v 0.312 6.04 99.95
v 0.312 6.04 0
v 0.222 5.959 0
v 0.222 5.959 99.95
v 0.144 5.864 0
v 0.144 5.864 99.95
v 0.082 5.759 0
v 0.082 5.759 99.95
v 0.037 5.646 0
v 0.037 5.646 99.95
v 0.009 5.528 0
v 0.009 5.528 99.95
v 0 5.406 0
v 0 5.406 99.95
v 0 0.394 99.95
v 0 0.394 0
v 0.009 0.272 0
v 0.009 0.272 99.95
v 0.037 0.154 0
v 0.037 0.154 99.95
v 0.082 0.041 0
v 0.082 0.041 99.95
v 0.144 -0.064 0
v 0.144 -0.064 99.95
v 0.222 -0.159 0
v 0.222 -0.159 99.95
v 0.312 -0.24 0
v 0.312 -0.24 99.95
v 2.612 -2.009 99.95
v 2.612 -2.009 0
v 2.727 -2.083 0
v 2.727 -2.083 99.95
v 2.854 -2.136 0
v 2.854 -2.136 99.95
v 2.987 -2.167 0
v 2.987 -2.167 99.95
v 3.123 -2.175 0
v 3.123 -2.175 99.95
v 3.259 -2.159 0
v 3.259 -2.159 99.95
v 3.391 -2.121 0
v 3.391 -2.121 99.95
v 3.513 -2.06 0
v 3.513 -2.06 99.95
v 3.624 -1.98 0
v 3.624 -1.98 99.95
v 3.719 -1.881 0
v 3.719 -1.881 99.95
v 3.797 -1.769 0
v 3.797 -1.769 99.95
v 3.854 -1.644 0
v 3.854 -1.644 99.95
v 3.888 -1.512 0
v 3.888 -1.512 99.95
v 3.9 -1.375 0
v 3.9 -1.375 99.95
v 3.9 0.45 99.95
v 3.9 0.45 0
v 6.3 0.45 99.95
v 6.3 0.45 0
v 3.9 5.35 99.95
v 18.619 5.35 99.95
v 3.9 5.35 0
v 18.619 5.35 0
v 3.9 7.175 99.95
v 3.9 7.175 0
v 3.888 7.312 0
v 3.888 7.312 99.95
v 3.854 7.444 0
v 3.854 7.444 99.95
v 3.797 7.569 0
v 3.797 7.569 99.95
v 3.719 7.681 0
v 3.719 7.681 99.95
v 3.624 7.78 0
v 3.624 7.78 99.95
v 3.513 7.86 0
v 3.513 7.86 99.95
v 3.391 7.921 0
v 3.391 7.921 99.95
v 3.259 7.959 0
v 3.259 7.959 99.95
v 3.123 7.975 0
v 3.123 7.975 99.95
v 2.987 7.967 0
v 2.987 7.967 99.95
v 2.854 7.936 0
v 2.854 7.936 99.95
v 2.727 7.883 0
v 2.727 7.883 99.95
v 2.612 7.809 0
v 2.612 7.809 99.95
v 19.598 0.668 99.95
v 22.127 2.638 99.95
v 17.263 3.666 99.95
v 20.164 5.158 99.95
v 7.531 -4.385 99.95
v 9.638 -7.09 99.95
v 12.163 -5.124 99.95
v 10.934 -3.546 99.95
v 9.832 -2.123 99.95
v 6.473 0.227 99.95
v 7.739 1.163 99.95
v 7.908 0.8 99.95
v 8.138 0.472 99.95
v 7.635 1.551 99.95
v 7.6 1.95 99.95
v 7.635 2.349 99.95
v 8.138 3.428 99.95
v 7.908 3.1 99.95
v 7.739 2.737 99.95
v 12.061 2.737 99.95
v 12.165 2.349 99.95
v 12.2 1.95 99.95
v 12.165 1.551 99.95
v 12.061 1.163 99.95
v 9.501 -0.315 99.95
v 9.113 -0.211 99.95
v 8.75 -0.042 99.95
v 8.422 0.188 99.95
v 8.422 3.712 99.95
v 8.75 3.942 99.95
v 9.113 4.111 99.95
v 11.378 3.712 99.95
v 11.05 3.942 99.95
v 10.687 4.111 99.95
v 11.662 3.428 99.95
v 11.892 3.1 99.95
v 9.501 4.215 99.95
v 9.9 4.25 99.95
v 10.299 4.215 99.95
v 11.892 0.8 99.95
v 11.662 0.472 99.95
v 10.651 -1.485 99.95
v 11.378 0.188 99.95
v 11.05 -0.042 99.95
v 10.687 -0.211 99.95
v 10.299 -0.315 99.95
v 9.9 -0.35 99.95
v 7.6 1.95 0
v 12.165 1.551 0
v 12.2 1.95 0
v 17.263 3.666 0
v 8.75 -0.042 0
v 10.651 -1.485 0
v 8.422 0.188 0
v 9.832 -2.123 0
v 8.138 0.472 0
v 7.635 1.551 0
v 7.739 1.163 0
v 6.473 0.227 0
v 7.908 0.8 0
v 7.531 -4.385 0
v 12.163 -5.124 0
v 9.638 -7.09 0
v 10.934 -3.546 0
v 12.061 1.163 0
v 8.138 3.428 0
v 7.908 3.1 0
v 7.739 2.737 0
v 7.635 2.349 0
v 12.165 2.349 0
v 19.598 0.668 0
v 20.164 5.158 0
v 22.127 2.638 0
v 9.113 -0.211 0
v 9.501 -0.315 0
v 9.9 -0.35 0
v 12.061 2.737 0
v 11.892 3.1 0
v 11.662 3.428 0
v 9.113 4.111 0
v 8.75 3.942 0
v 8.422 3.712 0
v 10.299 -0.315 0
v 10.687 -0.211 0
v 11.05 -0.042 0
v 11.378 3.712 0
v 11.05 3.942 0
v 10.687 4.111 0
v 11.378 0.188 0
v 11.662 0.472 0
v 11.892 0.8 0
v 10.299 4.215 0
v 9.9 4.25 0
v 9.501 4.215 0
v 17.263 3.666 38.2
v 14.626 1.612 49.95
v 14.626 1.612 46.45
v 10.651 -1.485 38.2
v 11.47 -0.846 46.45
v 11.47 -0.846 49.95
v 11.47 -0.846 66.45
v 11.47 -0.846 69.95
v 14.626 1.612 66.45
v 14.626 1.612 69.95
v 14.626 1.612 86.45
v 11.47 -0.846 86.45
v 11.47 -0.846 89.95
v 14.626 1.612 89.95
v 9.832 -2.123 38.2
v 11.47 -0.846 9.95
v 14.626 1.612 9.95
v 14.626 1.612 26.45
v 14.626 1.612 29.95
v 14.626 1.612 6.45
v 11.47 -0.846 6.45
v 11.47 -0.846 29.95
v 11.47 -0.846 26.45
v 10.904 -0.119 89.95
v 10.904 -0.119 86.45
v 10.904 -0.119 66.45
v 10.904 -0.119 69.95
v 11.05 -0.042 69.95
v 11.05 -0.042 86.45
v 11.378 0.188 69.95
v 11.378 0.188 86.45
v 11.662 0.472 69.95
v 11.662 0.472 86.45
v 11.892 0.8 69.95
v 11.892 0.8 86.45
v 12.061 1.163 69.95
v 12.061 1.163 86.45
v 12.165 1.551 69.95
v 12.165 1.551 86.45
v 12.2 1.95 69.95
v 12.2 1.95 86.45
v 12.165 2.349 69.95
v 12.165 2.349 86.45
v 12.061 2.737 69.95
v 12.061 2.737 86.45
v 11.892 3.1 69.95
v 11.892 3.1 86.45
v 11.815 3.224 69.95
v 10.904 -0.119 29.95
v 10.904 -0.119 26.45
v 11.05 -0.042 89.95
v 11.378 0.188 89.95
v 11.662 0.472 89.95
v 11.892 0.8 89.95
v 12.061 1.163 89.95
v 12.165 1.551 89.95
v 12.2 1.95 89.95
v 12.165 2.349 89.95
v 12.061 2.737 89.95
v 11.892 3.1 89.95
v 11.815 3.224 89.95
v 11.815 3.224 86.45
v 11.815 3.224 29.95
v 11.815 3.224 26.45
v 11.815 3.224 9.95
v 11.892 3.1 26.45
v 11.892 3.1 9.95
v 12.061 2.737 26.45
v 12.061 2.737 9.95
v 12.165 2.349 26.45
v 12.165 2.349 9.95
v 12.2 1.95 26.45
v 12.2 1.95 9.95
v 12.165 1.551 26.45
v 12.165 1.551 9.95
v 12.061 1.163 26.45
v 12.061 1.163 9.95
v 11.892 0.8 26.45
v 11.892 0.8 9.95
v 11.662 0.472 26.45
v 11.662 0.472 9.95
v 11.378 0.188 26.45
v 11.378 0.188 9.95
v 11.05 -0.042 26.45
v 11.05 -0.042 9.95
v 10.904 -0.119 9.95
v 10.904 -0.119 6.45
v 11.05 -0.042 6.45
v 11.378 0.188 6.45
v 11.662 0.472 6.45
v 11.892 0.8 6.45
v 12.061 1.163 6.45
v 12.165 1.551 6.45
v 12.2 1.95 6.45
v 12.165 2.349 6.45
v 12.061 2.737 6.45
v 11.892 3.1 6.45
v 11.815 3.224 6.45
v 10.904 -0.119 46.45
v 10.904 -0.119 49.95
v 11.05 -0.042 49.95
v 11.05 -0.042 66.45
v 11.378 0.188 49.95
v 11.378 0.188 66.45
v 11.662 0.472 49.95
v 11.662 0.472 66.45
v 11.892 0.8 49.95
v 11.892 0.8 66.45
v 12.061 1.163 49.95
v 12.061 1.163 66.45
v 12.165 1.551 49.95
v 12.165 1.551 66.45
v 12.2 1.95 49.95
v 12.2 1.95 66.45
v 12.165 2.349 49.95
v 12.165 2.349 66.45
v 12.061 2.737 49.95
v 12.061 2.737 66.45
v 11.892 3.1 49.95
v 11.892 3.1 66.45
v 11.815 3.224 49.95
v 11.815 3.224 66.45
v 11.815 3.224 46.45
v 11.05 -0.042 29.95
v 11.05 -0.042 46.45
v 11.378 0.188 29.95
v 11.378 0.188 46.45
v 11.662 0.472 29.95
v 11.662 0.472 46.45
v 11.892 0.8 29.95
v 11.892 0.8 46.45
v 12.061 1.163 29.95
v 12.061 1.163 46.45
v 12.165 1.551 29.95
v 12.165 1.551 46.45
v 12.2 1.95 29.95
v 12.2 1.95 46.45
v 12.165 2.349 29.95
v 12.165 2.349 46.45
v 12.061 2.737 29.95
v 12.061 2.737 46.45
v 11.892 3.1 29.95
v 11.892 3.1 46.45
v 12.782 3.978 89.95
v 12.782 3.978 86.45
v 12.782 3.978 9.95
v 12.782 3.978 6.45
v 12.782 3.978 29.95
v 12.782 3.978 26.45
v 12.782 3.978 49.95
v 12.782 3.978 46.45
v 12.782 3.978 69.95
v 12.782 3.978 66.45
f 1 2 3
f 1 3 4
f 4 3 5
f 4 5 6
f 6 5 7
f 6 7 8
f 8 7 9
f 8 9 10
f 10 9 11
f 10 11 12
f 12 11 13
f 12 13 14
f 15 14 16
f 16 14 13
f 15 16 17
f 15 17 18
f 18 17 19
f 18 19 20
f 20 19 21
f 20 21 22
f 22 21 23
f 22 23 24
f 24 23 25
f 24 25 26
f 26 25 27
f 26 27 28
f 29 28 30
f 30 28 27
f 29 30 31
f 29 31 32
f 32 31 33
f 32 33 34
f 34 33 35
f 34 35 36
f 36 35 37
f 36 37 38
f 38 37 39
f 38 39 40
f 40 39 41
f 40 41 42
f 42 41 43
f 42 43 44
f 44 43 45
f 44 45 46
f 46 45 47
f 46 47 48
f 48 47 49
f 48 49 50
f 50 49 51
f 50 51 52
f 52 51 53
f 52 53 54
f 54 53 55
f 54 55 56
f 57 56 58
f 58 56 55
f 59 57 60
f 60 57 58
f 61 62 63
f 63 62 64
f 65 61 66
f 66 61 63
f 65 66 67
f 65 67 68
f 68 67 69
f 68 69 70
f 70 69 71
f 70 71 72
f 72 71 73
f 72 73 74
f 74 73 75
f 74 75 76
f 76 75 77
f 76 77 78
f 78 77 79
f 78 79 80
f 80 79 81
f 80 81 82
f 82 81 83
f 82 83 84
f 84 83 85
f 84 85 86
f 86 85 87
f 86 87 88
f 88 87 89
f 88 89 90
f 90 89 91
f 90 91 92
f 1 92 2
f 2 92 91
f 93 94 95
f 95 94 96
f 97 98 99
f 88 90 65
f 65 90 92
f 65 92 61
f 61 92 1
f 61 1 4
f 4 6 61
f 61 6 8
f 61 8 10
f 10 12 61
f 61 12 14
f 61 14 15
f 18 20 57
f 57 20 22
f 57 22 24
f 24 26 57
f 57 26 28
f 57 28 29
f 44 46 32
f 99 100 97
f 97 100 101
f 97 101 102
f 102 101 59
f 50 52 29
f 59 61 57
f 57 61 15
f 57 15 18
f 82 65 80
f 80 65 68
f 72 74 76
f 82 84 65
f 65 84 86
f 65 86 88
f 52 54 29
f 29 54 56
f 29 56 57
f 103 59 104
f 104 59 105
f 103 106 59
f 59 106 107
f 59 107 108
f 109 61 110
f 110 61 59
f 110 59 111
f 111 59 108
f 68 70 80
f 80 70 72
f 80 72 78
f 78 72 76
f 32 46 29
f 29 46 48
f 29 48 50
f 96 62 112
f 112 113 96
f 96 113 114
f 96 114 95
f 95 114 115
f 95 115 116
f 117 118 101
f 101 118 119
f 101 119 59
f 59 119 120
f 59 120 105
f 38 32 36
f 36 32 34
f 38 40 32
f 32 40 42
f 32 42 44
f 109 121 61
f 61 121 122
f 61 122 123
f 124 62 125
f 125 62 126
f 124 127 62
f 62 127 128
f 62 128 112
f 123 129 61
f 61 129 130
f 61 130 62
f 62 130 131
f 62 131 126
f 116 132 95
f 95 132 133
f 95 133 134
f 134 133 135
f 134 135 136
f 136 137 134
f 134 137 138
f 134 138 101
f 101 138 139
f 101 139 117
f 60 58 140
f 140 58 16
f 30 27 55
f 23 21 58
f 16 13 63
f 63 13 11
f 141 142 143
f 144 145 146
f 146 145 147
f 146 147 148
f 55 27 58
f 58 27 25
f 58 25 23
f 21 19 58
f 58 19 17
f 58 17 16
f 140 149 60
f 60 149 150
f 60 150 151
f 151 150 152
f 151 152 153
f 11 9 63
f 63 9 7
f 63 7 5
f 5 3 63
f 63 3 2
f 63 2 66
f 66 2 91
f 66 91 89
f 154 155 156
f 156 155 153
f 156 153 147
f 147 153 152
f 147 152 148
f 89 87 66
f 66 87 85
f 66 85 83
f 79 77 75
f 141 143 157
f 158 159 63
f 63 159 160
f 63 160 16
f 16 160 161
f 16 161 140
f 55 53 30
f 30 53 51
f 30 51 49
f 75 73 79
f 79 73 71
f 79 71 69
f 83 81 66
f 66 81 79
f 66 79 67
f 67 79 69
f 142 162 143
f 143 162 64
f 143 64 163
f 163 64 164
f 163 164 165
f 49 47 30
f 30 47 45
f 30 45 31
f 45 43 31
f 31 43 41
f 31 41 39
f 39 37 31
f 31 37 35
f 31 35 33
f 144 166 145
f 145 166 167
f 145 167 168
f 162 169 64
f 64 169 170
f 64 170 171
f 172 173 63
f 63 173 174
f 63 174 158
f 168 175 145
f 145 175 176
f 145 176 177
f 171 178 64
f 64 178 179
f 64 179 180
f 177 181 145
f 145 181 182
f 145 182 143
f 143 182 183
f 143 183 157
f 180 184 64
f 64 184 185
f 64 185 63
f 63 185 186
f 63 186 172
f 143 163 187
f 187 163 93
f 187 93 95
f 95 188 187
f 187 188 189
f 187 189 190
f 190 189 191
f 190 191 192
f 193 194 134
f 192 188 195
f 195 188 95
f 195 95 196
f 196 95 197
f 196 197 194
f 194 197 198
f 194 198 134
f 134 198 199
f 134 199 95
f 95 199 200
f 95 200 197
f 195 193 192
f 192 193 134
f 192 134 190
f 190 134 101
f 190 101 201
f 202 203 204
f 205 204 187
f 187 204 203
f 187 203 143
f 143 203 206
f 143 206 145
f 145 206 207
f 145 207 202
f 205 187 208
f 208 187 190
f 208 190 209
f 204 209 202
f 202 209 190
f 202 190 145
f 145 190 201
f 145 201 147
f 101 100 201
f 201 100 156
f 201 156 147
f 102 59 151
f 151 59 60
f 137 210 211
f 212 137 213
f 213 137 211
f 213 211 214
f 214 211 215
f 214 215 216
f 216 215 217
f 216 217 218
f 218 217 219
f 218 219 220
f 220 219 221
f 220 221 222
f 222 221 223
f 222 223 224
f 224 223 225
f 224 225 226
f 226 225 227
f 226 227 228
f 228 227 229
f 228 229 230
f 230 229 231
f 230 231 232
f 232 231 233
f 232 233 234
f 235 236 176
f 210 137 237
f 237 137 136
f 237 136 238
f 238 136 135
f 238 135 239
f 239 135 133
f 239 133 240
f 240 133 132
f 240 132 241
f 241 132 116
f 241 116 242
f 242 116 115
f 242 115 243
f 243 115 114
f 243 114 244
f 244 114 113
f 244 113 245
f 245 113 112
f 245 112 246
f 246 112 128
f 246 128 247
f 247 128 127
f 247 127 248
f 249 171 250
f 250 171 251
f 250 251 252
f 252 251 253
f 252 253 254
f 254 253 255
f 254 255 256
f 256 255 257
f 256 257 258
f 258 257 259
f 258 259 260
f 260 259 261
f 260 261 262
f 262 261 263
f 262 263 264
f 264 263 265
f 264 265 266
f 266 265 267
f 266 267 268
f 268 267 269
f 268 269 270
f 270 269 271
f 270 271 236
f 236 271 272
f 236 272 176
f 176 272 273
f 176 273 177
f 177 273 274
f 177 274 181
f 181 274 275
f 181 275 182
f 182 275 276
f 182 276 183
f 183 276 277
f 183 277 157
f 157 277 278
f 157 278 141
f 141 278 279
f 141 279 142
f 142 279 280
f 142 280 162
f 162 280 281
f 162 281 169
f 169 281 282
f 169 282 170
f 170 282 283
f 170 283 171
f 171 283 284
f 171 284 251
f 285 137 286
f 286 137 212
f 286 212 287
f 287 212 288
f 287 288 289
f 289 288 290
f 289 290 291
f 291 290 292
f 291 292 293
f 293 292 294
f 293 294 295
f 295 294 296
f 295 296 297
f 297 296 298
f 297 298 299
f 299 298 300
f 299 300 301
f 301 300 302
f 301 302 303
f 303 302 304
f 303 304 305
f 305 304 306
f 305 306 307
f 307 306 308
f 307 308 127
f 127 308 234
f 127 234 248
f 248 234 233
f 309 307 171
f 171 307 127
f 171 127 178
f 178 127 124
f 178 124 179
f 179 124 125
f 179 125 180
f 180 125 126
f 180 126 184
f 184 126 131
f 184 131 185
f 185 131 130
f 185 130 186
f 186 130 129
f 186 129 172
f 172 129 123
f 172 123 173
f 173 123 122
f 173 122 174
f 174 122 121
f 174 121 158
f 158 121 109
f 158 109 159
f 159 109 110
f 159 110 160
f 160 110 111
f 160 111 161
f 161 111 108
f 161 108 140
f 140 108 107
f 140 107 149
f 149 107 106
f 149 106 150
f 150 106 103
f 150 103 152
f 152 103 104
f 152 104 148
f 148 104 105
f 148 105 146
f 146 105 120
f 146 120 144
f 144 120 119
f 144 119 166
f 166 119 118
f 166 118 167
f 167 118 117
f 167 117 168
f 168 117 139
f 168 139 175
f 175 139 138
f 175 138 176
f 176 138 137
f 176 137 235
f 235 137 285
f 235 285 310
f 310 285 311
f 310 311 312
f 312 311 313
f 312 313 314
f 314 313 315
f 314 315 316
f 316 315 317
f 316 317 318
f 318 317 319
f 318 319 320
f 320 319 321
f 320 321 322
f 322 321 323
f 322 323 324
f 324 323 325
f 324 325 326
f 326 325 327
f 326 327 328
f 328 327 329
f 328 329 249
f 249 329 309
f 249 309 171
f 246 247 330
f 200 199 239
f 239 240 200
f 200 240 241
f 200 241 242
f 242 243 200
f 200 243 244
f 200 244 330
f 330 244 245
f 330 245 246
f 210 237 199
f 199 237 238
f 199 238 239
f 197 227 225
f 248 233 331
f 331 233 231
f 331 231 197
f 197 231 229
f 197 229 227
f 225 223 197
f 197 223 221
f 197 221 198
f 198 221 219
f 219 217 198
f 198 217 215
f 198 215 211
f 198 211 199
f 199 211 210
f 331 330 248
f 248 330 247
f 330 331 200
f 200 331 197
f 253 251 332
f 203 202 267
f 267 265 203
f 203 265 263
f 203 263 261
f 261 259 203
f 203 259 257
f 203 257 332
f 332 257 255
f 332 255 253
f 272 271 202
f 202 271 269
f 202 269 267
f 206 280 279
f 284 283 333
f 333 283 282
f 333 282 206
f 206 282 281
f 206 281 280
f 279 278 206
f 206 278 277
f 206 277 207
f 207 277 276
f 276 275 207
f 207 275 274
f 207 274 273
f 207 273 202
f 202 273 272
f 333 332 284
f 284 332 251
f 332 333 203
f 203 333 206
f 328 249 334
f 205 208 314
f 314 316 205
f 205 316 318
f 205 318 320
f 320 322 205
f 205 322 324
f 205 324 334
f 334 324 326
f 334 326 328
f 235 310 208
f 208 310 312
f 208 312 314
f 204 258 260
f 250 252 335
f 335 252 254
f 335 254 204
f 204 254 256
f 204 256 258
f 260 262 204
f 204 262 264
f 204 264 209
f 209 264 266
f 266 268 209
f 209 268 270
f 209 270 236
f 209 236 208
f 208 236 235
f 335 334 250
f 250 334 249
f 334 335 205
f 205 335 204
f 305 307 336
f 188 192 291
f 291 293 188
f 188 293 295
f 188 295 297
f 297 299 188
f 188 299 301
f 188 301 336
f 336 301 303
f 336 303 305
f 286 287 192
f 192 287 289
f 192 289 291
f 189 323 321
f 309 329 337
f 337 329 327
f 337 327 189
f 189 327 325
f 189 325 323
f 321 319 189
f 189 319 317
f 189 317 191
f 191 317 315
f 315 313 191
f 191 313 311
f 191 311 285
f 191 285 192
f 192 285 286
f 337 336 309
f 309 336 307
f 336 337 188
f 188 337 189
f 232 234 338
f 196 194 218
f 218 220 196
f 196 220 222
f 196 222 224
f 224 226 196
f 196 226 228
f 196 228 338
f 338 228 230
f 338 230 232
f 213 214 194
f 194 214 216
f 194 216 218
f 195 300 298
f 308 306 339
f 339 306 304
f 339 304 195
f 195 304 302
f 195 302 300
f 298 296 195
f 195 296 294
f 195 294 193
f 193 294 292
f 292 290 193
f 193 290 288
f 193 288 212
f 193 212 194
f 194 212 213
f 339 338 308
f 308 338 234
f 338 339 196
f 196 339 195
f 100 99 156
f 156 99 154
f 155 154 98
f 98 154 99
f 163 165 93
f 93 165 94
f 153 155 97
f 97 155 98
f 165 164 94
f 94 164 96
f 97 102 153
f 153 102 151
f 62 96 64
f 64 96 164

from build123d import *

# Parameters (mm, degrees)
BOSS_EXTRUDE1_DEPTH = 99.95
BOSS_EXTRUDE2_DEPTH = 99.95
SKETCH3_R           = 2.3
CUT_EXTRUDE1_DEPTH  = 203
SKETCH4_W           = 3.5
SKETCH4_H           = 4
CUT_EXTRUDE2_DEPTH  = 3
LPATTERN1_COUNT     = 10
LPATTERN1_PITCH     = 20
THICKEN1_T1         = 2
THICKEN2_T1         = 2
BOSS_EXTRUDE3_DEPTH = 99.95
CHAMFER1_SIZE       = 4.717915225
CHAMFER1_SIZE_2     = 2.2
CHAMFER2_SIZE       = 2.2


with BuildPart() as part:
    # Sketch1 → Boss-Extrude1 (new body)
    with BuildSketch(Plane.XY):
        with BuildLine():
            Line((0, 0.393921198), (0, 5.406078802))
            ThreePointArc((0, 5.406078802), (0.08229014, 5.759480212), (0.312231391, 6.040177993))
            Line((0.312231391, 6.040177993), (2.612231391, 7.809408763))
            ThreePointArc((2.612231391, 7.809408763), (3.45340141, 7.893019432), (3.9, 7.175309571))
            Line((3.9, 7.175309571), (3.9, 5.35))
            Line((3.9, 5.35), (6.3, 5.35))
            Line((6.3, 5.35), (6.3, 0.45))
            Line((6.3, 0.45), (3.9, 0.45))
            Line((3.9, 0.45), (3.9, -1.375309571))
            ThreePointArc((3.9, -1.375309571), (3.45340141, -2.093019432), (2.612231391, -2.009408763))
            Line((2.612231391, -2.009408763), (0.312231391, -0.240177993))
            ThreePointArc((0.312231391, -0.240177993), (0.08229014, 0.040519788), (0, 0.393921198))
        make_face()
    extrude(amount=BOSS_EXTRUDE1_DEPTH)

    # Sketch2 → Boss-Extrude2 (add)
    with BuildSketch(Plane.XY.offset(99.95)):
        Polygon((17.472453889, 5.35), (6.3, 5.35), (6.3, 0.45), (9.987087866, -4.283432483), (10.933774362, -3.54601491), (9.831668963, -2.122862181), (17.26318939, 3.66589025), (18.369311325, 2.245866185), (19.315997822, 2.983283759), align=None)
    extrude(amount=-BOSS_EXTRUDE2_DEPTH)

    # Sketch3 → Cut-Extrude1 (cut)
    with BuildSketch(Plane.XY.offset(99.95)):
        with Locations((9.9, 1.95)):
            Circle(SKETCH3_R)
    extrude(amount=-CUT_EXTRUDE1_DEPTH, mode=Mode.SUBTRACT)

    # Sketch4 → Cut-Extrude2 (cut)
    with BuildSketch(Plane(origin=(6.0943119, -5.034061174, 0), x_dir=(0, 0, -1), z_dir=(0.6145146443247225, -0.7889054137920846, 0))):
        with Locations((-88.2, 8.814603366)):
            Rectangle(SKETCH4_W, SKETCH4_H)
    cut_extrude2 = extrude(amount=-CUT_EXTRUDE2_DEPTH, mode=Mode.SUBTRACT)

    # LPattern1: Cut-Extrude2 ×10
    with Locations(*[(0, 0, -i * LPATTERN1_PITCH) for i in range(1, LPATTERN1_COUNT)]):
        add(cut_extrude2, mode=Mode.SUBTRACT)

    # Surface-Offset1: a surface, a copy of 1 face of the part
    surface_offset1_1 = part.part.faces().sort_by_distance((10.460431114, -3.914723696, 49.975))[0]
    add(Solid.thicken(surface_offset1_1, THICKEN1_T1))

    # Surface-Offset2: a surface, a copy of 1 face of the part
    surface_offset2_2 = part.part.faces().sort_by_distance((18.842654573, 2.614574972, 49.975))[0]
    add(Solid.thicken(surface_offset2_2, THICKEN2_T1))

    # Sketch5 → Boss-Extrude3 (add)
    with BuildSketch(Plane.XY.offset(99.95)):
        Polygon((11.216117155, -5.86124331), (9.638306327, -7.090272599), (7.794762394, -4.723556358), (9.372573222, -3.494527069), align=None)
        Polygon((22.126854473, 2.637630884), (20.28331054, 5.004347125), (17.754796681, 3.034771599), (19.598340614, 0.668055358), align=None)
    extrude(amount=-BOSS_EXTRUDE3_DEPTH)

    # Chamfer1
    # the kernel refuses this chamfer: 4.717915225, 2.2 mm, written as the material it adds along each edge
    with BuildSketch(Plane(origin=(9.372573222, -3.494527069, 99.95), x_dir=(-0.6015649261356993, 0.7988239102852083, 0), z_dir=(0, 0, -1))) as chamfer1_piece_1_section:
        Polygon((CHAMFER1_SIZE * 0.999866964139, -CHAMFER1_SIZE * 0.0163111641315), (-CHAMFER1_SIZE_2 * 0.0163111641311, -CHAMFER1_SIZE_2 * 0.999866964113), (0, 0), align=None)
    chamfer1_piece_1 = extrude(amount=99.95, mode=Mode.PRIVATE)
    chamfer1_piece_1 = split(chamfer1_piece_1, bisect_by=Plane(origin=(6.797025318, -3.442675278, 49.975), z_dir=(0.7889054137920843, 0.6145146443247225, 0)), keep=Keep.TOP, mode=Mode.PRIVATE)
    add(chamfer1_piece_1)

    # Chamfer2
    # the kernel refuses this chamfer: 2.2 mm, written as the material it adds along each edge
    with BuildSketch(Plane(origin=(18.701483177, 3.772189172, 0), x_dir=(-0.6359739526449933, 0.7717105231607922, 0), z_dir=(0, 0, 1))) as chamfer2_piece_1_section:
        Polygon((CHAMFER2_SIZE * 0.999621916911, -CHAMFER2_SIZE * 0.0274958766106), (-CHAMFER2_SIZE * 0.0274958766106, -CHAMFER2_SIZE * 0.999621916911), (0, 0), align=None)
    chamfer2_piece_1 = extrude(amount=99.95, mode=Mode.PRIVATE)
    chamfer2_piece_1 = split(chamfer2_piece_1, bisect_by=Plane(origin=(18.850985857, 5.35, 49.975), z_dir=(0, -1, 0)), keep=Keep.TOP, mode=Mode.PRIVATE)
    chamfer2_piece_1 = split(chamfer2_piece_1, bisect_by=Plane(origin=(19.861540809, 5.545809281, 49.975), z_dir=(-0.7889054137920902, -0.614514644324715, 0)), keep=Keep.TOP, mode=Mode.PRIVATE)
    add(chamfer2_piece_1)


solid = part.part
